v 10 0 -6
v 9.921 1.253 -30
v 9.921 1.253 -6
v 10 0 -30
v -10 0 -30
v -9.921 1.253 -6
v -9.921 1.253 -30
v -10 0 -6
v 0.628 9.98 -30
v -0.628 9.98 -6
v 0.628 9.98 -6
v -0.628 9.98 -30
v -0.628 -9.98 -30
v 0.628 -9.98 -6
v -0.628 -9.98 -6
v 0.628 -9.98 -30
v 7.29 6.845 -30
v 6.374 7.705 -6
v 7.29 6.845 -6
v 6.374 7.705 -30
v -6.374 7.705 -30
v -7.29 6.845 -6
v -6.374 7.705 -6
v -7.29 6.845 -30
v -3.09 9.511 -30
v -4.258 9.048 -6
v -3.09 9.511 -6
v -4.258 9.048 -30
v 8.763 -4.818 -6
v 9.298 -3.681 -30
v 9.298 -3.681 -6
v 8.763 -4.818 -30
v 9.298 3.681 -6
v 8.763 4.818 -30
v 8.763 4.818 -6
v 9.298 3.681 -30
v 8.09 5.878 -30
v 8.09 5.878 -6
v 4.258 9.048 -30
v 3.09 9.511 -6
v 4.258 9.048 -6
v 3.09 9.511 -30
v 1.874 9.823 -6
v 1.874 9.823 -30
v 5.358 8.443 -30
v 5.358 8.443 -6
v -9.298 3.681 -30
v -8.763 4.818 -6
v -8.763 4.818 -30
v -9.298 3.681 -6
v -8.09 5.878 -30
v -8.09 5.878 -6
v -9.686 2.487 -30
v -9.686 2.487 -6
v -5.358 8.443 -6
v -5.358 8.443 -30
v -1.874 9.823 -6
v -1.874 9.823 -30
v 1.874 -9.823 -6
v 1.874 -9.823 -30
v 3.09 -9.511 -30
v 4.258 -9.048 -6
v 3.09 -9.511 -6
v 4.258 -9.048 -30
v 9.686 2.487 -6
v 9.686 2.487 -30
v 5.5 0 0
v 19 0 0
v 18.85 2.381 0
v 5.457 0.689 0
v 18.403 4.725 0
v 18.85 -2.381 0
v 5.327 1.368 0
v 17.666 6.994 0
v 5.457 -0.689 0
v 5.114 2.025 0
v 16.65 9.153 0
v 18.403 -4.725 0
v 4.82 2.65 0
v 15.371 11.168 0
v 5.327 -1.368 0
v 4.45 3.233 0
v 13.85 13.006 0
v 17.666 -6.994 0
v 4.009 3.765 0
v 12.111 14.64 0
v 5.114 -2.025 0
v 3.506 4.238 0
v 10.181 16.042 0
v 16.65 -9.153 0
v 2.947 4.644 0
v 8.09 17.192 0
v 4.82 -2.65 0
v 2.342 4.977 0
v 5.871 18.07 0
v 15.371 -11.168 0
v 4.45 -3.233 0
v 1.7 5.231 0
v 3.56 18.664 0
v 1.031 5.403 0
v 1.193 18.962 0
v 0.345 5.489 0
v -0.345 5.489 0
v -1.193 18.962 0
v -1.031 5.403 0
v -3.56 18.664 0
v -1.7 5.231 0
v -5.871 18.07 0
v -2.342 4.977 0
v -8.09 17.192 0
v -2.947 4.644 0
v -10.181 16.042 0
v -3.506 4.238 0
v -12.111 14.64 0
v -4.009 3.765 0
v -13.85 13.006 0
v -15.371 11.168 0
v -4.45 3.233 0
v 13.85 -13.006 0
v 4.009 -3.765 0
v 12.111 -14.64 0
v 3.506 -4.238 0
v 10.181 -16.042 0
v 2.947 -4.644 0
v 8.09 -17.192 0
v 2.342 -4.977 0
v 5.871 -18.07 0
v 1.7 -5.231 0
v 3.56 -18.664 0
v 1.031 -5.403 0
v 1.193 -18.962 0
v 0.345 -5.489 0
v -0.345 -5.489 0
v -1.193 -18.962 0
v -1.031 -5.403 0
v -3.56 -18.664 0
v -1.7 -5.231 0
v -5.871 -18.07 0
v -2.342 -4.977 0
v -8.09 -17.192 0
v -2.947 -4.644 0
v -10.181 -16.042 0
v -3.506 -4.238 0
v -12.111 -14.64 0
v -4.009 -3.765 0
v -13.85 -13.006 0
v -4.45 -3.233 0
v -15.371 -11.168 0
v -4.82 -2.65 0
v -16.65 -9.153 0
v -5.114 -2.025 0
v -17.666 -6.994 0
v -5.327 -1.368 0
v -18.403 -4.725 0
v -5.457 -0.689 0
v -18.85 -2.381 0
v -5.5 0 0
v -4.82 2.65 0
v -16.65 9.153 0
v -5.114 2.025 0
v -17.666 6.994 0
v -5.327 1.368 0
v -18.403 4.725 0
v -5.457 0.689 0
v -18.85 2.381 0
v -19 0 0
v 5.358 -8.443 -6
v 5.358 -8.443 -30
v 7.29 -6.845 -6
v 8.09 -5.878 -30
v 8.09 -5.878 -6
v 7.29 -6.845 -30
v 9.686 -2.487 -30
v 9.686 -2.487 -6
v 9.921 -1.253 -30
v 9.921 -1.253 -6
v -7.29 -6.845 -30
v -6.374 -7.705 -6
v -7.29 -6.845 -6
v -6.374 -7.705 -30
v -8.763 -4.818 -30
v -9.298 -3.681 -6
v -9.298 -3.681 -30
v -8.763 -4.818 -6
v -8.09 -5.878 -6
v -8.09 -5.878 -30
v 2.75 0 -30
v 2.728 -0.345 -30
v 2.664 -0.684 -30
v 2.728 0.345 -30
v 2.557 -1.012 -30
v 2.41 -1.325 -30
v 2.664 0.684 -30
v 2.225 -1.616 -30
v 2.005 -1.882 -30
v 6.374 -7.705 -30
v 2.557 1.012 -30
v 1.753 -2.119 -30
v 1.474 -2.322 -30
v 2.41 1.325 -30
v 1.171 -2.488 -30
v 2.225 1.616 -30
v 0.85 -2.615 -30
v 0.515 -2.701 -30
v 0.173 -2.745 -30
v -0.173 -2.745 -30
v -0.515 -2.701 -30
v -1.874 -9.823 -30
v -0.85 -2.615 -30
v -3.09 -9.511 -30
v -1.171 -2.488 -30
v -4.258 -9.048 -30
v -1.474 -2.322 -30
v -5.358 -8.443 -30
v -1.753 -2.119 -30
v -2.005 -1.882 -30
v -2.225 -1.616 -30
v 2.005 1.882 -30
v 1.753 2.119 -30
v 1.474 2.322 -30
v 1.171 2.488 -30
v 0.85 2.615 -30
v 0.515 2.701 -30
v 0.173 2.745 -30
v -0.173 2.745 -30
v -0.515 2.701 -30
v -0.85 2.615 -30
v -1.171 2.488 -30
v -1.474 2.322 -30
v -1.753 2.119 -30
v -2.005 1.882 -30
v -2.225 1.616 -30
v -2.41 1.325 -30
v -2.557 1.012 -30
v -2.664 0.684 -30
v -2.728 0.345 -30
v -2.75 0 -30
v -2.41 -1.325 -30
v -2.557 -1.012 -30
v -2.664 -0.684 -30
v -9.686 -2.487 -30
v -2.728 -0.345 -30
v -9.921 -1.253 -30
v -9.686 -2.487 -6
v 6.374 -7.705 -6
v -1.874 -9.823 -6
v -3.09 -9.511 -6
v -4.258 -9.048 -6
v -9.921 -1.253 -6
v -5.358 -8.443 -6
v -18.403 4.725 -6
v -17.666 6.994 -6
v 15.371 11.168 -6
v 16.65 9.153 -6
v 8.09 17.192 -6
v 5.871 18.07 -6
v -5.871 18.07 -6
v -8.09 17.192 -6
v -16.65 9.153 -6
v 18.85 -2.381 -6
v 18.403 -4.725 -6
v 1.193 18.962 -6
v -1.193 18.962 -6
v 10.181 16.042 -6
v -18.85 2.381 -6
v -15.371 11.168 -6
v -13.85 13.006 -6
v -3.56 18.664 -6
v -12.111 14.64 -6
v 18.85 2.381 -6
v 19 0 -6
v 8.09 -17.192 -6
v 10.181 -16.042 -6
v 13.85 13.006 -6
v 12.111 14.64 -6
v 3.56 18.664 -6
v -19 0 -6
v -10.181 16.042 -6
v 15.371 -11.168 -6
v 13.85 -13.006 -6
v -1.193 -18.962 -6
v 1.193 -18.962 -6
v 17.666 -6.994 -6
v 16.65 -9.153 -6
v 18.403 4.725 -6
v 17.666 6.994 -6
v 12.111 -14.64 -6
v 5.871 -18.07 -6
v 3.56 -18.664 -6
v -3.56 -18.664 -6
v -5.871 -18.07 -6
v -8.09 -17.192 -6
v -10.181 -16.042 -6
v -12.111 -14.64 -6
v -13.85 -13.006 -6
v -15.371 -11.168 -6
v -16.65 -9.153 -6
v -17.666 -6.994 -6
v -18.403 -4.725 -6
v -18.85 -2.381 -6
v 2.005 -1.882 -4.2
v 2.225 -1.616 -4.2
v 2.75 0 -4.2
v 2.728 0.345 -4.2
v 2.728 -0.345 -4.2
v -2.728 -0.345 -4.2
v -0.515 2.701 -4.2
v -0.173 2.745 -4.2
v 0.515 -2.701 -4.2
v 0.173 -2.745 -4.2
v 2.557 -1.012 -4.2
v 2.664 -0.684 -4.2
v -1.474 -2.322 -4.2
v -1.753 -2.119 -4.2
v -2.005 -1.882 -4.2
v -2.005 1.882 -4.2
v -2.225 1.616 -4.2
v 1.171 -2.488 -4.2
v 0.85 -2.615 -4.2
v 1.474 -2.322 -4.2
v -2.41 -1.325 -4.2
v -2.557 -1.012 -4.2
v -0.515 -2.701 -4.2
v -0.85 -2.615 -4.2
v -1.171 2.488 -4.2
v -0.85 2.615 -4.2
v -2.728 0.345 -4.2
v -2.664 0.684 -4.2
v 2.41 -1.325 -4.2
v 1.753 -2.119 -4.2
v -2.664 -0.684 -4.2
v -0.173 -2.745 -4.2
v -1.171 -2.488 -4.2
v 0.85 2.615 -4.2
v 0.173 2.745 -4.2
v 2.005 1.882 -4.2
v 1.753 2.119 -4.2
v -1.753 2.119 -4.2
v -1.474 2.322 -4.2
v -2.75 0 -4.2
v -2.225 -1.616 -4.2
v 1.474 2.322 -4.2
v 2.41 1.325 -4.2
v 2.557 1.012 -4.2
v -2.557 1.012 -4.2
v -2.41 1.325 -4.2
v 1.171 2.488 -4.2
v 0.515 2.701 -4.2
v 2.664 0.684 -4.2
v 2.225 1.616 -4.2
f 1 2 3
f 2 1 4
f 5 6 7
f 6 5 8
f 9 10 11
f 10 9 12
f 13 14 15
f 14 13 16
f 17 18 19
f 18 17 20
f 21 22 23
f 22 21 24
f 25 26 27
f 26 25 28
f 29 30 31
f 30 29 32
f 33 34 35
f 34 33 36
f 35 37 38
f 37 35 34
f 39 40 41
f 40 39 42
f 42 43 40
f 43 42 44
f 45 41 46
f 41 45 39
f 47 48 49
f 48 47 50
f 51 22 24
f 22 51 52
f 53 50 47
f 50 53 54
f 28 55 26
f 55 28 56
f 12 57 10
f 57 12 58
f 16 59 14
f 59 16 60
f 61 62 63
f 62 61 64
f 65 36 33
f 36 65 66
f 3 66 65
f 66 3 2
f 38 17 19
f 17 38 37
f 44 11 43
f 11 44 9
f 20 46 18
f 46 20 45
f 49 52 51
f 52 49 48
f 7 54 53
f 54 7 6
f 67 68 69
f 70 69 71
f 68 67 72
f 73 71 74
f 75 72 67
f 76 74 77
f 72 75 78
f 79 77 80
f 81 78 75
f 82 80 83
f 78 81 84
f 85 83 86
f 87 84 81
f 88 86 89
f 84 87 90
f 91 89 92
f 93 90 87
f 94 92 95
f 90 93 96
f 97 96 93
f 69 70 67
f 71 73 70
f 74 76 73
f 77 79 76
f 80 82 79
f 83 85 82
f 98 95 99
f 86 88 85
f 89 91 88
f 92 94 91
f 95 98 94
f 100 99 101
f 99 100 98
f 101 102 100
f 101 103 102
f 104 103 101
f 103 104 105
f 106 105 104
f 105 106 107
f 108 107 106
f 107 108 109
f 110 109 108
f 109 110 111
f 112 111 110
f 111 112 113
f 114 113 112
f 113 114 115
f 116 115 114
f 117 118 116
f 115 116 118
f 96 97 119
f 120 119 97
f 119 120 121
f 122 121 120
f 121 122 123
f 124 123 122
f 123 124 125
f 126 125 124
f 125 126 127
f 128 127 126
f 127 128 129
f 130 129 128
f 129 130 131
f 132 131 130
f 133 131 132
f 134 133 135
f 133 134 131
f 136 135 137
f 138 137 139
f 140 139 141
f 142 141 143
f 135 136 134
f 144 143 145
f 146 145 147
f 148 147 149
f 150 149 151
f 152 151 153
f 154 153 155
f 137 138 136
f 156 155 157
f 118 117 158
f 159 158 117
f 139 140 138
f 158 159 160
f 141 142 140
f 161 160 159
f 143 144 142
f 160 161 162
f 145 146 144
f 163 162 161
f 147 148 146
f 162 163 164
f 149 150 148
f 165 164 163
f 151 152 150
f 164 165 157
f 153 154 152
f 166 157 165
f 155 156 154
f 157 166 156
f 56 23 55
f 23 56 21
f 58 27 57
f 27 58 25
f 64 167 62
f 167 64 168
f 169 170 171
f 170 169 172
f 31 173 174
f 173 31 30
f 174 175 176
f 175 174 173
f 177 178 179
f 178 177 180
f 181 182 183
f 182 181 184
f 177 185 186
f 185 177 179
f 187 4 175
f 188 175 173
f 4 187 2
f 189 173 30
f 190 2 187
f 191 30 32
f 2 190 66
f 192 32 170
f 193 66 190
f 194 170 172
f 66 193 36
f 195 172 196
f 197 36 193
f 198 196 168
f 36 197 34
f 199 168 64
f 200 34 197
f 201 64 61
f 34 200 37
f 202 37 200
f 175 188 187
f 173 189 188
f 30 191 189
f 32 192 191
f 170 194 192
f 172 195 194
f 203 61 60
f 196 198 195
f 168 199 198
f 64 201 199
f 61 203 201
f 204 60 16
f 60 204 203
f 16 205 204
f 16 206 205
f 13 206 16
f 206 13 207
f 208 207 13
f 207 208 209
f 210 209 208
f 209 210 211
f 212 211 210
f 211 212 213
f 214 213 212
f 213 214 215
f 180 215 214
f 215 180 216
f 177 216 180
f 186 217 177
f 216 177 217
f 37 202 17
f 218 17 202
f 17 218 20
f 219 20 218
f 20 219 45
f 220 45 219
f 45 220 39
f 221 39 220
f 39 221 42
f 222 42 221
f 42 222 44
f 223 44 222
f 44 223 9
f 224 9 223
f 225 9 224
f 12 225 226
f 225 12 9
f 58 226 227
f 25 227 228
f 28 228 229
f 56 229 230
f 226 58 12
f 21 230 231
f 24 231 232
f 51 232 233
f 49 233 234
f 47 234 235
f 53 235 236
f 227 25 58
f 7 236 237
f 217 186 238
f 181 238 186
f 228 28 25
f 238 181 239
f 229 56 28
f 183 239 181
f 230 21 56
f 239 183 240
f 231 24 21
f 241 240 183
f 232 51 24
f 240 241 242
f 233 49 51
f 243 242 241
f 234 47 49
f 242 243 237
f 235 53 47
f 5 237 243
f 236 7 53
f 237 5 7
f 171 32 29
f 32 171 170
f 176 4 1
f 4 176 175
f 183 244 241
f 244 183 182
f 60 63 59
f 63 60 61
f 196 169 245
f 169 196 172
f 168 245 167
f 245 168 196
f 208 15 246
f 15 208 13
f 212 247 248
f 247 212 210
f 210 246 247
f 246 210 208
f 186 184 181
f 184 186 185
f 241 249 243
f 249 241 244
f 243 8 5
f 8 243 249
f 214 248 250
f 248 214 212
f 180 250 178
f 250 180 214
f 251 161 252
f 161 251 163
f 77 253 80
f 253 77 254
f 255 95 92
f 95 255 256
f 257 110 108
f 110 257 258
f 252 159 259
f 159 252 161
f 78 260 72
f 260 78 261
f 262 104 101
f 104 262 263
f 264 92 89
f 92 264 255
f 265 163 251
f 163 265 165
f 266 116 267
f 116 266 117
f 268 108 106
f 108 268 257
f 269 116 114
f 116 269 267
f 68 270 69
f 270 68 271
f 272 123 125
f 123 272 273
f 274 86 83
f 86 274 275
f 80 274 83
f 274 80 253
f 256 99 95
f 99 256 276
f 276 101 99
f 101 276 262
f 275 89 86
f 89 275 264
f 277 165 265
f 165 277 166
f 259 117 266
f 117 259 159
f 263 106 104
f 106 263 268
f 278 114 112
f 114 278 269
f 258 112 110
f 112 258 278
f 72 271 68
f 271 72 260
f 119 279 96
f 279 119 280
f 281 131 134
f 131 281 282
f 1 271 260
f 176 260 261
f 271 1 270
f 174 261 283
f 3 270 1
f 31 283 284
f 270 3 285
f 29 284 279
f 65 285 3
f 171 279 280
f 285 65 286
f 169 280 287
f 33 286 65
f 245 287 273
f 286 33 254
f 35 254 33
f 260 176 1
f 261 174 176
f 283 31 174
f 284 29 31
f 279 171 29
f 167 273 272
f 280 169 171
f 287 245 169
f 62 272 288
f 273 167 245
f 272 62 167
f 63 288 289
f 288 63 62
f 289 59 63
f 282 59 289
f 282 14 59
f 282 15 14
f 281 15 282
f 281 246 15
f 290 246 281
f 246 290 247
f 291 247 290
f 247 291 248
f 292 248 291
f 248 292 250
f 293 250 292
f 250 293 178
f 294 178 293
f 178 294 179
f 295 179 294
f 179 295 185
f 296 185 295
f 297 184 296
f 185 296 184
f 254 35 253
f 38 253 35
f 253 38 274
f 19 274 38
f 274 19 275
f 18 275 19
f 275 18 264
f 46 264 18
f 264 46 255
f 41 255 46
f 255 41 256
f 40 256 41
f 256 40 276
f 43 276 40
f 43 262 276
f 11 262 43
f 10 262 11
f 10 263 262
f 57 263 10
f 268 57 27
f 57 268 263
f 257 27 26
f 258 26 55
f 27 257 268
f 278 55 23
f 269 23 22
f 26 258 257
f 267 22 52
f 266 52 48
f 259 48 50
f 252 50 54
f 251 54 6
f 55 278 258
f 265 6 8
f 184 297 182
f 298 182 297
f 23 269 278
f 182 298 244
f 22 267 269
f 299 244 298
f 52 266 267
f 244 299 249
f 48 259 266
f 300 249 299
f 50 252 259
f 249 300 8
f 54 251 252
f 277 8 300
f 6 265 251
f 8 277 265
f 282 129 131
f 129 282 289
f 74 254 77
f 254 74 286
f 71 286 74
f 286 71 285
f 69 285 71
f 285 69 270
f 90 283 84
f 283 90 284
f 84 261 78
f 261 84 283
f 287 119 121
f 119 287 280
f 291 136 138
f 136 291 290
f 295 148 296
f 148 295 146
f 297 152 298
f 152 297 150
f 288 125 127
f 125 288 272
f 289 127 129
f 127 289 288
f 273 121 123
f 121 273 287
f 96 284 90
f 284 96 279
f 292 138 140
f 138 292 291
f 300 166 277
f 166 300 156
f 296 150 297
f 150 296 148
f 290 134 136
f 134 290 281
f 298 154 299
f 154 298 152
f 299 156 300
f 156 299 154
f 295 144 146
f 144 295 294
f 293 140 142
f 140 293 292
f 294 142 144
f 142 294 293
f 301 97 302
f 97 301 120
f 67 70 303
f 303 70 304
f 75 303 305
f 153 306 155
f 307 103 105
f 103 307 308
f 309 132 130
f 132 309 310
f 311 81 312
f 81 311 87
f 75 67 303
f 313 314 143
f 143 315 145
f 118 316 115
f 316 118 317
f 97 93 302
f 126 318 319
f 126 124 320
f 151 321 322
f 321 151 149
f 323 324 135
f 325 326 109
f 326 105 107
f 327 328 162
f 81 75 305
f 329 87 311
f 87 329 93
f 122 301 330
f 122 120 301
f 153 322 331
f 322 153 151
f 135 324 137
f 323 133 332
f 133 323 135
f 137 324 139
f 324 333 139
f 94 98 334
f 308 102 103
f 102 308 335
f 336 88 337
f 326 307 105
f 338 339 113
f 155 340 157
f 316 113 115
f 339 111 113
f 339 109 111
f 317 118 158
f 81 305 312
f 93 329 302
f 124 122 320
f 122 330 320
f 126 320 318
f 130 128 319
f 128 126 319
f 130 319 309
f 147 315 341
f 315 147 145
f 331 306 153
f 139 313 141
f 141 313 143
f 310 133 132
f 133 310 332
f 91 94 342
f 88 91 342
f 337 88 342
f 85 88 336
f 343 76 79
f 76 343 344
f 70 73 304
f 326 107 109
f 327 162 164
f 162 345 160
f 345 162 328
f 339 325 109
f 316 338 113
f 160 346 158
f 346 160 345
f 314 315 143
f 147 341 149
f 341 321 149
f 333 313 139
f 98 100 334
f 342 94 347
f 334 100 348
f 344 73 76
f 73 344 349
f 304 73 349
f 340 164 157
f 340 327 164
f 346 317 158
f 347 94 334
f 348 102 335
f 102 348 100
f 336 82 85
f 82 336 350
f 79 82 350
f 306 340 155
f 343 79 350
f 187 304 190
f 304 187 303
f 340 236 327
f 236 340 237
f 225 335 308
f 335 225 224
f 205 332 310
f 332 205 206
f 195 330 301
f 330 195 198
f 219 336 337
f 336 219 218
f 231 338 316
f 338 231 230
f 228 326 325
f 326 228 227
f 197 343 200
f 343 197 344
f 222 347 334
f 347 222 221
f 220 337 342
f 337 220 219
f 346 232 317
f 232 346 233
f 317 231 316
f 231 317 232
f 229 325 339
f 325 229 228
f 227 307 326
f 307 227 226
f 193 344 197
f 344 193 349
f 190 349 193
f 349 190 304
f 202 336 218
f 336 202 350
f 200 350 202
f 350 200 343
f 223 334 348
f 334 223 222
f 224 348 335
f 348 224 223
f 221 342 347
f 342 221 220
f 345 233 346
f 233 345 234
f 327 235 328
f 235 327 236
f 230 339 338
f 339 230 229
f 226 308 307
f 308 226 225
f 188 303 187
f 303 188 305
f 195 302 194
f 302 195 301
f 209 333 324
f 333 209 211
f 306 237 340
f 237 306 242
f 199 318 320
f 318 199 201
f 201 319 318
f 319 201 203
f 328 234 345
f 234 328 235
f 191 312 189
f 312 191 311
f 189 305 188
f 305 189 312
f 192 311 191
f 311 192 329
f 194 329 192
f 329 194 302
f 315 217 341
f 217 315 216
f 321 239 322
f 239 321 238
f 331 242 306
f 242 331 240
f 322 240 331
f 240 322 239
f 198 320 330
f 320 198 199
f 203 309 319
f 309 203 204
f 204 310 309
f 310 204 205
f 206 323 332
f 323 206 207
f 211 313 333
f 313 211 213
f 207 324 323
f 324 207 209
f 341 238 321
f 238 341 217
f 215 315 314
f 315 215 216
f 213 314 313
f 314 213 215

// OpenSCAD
$fn = 50;


difference() {
	union() {
		translate(v = [0, 0, -30.0000000000]) {
			cylinder(h = 30, r = 10.0000000000);
		}
		translate(v = [0, 0, -6.0000000000]) {
			cylinder(h = 6, r = 19.0000000000);
		}
	}
	union() {
		translate(v = [0, 0, 0]) {
			rotate(a = [0, 0, 0]) {
				difference() {
					union() {
						#translate(v = [0, 0, -30.0000000000]) {
							cylinder(h = 30, r = 2.2500000000);
						}
						#translate(v = [0, 0, -4.2000000000]) {
							cylinder(h = 4.2000000000, r = 10.0000000000, r1 = 2.7500000000, r2 = 5.5000000000);
						}
						#translate(v = [0, 0, -30.0000000000]) {
							cylinder(h = 30, r = 2.7500000000);
						}
						#translate(v = [0, 0, -30.0000000000]) {
							cylinder(h = 30, r = 2.2500000000);
						}
					}
					union();
				}
			}
		}
	}
}
